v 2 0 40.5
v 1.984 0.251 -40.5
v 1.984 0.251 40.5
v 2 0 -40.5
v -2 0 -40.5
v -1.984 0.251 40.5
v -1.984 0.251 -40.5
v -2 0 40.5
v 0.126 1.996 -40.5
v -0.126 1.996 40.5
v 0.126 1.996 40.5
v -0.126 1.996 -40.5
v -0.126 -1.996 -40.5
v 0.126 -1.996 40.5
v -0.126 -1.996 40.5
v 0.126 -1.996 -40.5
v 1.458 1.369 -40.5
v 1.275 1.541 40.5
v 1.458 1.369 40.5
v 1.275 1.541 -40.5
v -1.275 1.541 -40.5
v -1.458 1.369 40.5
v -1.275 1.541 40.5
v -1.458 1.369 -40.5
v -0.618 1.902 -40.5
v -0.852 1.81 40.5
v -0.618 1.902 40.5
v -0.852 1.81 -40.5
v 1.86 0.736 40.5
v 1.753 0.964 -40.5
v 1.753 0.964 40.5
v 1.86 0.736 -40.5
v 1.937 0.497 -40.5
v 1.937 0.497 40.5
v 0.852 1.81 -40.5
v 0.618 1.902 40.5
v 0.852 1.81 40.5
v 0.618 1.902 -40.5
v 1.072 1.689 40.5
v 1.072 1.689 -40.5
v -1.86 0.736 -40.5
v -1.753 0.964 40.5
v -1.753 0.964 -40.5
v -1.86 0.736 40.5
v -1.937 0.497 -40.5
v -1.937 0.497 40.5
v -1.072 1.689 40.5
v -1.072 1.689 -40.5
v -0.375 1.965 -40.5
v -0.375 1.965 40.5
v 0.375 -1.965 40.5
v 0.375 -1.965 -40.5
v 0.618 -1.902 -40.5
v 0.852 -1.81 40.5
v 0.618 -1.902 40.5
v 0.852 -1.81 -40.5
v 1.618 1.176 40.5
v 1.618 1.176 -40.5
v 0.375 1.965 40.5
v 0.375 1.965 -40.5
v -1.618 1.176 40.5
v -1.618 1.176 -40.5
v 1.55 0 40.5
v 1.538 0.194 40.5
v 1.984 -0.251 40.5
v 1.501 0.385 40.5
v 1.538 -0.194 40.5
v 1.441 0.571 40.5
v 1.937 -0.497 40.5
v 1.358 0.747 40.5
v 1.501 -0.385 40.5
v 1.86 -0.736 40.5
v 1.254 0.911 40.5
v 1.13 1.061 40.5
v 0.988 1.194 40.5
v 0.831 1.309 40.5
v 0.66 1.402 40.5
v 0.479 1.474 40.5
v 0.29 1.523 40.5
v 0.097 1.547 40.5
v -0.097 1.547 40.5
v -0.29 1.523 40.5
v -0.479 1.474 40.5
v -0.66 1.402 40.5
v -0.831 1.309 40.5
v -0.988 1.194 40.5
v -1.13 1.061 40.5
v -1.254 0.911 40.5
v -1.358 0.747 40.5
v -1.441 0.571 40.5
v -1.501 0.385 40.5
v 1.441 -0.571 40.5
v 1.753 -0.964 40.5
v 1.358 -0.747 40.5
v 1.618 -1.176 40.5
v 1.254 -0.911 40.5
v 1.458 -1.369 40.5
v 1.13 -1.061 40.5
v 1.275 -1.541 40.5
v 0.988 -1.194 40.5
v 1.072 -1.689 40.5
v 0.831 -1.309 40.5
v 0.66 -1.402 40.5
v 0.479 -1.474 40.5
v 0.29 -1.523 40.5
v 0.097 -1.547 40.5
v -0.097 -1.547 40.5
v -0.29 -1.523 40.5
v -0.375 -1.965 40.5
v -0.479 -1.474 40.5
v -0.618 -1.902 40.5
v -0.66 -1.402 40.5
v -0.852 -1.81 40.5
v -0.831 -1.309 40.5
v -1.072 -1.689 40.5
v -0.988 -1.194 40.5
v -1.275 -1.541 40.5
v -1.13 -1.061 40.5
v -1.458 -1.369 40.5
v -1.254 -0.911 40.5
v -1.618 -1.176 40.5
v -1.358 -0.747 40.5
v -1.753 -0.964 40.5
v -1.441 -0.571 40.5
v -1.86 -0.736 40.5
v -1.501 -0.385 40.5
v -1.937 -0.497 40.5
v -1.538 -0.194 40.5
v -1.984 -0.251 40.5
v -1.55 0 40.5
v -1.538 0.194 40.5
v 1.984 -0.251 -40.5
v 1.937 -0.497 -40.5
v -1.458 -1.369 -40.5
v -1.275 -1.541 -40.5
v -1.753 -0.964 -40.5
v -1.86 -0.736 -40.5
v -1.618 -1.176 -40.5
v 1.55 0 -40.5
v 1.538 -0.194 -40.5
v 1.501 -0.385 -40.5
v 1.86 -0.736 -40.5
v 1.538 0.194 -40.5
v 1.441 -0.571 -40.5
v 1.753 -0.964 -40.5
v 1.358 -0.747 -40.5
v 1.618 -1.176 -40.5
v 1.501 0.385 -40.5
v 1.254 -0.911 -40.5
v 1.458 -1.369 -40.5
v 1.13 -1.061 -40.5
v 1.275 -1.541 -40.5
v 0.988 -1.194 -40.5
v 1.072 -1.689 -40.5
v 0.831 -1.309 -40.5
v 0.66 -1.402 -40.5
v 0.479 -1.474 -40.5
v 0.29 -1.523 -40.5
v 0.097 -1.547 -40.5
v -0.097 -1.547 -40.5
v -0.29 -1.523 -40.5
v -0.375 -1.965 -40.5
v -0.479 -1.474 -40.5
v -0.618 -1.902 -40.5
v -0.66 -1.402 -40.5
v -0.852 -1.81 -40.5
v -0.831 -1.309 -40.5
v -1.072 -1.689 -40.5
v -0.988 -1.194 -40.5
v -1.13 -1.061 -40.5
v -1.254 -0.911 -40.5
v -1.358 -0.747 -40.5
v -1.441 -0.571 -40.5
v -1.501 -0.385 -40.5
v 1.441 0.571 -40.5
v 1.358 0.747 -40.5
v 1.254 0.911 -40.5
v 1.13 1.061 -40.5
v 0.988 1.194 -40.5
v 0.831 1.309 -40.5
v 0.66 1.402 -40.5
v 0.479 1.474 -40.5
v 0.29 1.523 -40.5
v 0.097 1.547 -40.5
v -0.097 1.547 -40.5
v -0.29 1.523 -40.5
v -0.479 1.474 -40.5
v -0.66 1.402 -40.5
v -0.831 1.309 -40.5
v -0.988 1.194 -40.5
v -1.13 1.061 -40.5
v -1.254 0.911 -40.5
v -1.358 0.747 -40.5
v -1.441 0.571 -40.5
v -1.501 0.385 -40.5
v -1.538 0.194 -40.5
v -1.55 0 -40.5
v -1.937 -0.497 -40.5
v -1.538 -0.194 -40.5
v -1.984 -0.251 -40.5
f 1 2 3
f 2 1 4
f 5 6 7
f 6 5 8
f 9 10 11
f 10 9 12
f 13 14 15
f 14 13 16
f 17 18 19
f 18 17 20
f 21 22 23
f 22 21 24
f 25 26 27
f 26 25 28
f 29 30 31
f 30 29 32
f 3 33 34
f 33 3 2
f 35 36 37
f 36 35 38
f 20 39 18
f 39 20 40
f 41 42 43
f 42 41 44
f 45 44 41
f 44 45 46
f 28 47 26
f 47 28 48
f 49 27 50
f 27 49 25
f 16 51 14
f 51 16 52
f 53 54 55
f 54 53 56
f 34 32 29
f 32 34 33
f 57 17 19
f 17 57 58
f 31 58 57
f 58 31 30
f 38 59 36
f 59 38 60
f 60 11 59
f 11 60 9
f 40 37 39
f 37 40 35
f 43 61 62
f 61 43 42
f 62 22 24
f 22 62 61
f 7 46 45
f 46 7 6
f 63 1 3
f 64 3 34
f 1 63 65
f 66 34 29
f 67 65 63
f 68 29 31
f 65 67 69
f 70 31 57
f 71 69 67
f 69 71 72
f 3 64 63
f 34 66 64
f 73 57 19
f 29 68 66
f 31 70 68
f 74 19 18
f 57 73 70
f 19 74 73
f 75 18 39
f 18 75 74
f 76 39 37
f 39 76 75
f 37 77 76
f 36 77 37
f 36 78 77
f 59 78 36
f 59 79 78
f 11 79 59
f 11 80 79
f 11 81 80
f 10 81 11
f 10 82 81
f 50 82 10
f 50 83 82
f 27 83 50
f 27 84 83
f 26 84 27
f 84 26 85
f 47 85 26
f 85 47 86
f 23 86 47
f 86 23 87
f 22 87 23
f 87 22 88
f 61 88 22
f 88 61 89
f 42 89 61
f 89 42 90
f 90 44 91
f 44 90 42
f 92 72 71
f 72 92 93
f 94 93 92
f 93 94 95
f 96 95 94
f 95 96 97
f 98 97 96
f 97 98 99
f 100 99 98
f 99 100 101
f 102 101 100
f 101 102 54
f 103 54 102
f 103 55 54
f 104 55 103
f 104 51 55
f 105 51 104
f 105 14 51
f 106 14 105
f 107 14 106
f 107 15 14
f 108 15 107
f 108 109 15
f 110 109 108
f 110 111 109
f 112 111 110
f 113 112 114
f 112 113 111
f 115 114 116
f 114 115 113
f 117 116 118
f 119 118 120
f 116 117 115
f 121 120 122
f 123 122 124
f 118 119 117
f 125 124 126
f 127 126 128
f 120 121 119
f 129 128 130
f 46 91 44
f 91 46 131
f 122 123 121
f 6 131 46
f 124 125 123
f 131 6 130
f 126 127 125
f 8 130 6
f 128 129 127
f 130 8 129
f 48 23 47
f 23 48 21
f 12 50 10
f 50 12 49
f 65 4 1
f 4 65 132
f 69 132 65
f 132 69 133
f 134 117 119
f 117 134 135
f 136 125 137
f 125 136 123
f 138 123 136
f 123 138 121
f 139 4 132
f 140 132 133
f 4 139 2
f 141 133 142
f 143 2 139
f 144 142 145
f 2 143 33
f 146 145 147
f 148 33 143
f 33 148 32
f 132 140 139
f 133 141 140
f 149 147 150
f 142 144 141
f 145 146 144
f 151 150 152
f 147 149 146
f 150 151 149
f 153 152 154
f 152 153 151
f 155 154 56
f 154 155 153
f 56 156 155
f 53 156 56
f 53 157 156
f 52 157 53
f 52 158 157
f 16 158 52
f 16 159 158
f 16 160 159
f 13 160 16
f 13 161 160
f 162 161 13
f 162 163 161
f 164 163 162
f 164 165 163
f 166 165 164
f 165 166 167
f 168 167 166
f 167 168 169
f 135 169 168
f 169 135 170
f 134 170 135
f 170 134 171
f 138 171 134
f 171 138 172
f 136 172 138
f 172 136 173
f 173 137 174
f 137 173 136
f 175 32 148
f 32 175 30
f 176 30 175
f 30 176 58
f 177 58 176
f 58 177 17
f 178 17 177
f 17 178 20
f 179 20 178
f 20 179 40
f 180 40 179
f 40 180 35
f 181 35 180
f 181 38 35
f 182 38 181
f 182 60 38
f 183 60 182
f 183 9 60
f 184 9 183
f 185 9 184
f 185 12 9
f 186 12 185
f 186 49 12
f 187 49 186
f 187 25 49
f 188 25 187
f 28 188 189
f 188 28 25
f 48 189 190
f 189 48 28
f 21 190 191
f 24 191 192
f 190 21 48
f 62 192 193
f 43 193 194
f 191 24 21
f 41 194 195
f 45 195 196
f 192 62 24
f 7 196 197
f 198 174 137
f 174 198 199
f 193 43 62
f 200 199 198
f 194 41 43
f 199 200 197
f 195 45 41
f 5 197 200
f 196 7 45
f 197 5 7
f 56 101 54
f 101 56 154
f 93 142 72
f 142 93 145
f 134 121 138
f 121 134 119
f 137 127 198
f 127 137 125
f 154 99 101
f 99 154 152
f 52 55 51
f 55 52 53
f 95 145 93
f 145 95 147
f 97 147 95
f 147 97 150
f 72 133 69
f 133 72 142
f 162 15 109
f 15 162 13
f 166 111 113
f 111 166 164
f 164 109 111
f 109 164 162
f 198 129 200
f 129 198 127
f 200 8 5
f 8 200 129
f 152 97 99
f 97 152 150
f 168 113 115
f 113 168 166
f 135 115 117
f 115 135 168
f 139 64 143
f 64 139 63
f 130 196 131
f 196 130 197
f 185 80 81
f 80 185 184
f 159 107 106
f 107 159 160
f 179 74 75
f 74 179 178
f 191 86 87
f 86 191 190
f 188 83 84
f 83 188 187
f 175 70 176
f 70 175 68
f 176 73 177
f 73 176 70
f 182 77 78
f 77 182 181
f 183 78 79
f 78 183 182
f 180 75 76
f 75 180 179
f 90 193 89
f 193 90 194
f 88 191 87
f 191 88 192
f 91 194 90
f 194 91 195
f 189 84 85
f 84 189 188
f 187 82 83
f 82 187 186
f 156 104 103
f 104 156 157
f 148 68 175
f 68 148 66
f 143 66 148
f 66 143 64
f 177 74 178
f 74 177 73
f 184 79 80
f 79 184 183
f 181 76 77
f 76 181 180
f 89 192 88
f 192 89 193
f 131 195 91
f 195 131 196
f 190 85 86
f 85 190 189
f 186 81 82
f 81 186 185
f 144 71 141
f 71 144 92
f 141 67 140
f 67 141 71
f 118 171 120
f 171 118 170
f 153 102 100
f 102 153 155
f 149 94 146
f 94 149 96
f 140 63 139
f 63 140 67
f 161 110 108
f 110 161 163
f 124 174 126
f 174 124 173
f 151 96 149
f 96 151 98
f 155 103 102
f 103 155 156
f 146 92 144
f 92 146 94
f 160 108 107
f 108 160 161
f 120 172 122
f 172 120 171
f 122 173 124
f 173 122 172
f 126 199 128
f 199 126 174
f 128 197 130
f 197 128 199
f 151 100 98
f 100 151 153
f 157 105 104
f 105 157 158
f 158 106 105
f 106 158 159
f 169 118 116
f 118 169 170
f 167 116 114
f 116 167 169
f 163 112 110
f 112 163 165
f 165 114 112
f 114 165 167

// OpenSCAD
$fn = 50;


difference() {
	union() {
		translate(v = [0, 0, -40.5000000000]) {
			cylinder(h = 81, r = 2.0000000000);
		}
	}
	union() {
		translate(v = [0, 0, -100.0000000000]) {
			cylinder(h = 200, r = 1.5500000000);
		}
	}
}
